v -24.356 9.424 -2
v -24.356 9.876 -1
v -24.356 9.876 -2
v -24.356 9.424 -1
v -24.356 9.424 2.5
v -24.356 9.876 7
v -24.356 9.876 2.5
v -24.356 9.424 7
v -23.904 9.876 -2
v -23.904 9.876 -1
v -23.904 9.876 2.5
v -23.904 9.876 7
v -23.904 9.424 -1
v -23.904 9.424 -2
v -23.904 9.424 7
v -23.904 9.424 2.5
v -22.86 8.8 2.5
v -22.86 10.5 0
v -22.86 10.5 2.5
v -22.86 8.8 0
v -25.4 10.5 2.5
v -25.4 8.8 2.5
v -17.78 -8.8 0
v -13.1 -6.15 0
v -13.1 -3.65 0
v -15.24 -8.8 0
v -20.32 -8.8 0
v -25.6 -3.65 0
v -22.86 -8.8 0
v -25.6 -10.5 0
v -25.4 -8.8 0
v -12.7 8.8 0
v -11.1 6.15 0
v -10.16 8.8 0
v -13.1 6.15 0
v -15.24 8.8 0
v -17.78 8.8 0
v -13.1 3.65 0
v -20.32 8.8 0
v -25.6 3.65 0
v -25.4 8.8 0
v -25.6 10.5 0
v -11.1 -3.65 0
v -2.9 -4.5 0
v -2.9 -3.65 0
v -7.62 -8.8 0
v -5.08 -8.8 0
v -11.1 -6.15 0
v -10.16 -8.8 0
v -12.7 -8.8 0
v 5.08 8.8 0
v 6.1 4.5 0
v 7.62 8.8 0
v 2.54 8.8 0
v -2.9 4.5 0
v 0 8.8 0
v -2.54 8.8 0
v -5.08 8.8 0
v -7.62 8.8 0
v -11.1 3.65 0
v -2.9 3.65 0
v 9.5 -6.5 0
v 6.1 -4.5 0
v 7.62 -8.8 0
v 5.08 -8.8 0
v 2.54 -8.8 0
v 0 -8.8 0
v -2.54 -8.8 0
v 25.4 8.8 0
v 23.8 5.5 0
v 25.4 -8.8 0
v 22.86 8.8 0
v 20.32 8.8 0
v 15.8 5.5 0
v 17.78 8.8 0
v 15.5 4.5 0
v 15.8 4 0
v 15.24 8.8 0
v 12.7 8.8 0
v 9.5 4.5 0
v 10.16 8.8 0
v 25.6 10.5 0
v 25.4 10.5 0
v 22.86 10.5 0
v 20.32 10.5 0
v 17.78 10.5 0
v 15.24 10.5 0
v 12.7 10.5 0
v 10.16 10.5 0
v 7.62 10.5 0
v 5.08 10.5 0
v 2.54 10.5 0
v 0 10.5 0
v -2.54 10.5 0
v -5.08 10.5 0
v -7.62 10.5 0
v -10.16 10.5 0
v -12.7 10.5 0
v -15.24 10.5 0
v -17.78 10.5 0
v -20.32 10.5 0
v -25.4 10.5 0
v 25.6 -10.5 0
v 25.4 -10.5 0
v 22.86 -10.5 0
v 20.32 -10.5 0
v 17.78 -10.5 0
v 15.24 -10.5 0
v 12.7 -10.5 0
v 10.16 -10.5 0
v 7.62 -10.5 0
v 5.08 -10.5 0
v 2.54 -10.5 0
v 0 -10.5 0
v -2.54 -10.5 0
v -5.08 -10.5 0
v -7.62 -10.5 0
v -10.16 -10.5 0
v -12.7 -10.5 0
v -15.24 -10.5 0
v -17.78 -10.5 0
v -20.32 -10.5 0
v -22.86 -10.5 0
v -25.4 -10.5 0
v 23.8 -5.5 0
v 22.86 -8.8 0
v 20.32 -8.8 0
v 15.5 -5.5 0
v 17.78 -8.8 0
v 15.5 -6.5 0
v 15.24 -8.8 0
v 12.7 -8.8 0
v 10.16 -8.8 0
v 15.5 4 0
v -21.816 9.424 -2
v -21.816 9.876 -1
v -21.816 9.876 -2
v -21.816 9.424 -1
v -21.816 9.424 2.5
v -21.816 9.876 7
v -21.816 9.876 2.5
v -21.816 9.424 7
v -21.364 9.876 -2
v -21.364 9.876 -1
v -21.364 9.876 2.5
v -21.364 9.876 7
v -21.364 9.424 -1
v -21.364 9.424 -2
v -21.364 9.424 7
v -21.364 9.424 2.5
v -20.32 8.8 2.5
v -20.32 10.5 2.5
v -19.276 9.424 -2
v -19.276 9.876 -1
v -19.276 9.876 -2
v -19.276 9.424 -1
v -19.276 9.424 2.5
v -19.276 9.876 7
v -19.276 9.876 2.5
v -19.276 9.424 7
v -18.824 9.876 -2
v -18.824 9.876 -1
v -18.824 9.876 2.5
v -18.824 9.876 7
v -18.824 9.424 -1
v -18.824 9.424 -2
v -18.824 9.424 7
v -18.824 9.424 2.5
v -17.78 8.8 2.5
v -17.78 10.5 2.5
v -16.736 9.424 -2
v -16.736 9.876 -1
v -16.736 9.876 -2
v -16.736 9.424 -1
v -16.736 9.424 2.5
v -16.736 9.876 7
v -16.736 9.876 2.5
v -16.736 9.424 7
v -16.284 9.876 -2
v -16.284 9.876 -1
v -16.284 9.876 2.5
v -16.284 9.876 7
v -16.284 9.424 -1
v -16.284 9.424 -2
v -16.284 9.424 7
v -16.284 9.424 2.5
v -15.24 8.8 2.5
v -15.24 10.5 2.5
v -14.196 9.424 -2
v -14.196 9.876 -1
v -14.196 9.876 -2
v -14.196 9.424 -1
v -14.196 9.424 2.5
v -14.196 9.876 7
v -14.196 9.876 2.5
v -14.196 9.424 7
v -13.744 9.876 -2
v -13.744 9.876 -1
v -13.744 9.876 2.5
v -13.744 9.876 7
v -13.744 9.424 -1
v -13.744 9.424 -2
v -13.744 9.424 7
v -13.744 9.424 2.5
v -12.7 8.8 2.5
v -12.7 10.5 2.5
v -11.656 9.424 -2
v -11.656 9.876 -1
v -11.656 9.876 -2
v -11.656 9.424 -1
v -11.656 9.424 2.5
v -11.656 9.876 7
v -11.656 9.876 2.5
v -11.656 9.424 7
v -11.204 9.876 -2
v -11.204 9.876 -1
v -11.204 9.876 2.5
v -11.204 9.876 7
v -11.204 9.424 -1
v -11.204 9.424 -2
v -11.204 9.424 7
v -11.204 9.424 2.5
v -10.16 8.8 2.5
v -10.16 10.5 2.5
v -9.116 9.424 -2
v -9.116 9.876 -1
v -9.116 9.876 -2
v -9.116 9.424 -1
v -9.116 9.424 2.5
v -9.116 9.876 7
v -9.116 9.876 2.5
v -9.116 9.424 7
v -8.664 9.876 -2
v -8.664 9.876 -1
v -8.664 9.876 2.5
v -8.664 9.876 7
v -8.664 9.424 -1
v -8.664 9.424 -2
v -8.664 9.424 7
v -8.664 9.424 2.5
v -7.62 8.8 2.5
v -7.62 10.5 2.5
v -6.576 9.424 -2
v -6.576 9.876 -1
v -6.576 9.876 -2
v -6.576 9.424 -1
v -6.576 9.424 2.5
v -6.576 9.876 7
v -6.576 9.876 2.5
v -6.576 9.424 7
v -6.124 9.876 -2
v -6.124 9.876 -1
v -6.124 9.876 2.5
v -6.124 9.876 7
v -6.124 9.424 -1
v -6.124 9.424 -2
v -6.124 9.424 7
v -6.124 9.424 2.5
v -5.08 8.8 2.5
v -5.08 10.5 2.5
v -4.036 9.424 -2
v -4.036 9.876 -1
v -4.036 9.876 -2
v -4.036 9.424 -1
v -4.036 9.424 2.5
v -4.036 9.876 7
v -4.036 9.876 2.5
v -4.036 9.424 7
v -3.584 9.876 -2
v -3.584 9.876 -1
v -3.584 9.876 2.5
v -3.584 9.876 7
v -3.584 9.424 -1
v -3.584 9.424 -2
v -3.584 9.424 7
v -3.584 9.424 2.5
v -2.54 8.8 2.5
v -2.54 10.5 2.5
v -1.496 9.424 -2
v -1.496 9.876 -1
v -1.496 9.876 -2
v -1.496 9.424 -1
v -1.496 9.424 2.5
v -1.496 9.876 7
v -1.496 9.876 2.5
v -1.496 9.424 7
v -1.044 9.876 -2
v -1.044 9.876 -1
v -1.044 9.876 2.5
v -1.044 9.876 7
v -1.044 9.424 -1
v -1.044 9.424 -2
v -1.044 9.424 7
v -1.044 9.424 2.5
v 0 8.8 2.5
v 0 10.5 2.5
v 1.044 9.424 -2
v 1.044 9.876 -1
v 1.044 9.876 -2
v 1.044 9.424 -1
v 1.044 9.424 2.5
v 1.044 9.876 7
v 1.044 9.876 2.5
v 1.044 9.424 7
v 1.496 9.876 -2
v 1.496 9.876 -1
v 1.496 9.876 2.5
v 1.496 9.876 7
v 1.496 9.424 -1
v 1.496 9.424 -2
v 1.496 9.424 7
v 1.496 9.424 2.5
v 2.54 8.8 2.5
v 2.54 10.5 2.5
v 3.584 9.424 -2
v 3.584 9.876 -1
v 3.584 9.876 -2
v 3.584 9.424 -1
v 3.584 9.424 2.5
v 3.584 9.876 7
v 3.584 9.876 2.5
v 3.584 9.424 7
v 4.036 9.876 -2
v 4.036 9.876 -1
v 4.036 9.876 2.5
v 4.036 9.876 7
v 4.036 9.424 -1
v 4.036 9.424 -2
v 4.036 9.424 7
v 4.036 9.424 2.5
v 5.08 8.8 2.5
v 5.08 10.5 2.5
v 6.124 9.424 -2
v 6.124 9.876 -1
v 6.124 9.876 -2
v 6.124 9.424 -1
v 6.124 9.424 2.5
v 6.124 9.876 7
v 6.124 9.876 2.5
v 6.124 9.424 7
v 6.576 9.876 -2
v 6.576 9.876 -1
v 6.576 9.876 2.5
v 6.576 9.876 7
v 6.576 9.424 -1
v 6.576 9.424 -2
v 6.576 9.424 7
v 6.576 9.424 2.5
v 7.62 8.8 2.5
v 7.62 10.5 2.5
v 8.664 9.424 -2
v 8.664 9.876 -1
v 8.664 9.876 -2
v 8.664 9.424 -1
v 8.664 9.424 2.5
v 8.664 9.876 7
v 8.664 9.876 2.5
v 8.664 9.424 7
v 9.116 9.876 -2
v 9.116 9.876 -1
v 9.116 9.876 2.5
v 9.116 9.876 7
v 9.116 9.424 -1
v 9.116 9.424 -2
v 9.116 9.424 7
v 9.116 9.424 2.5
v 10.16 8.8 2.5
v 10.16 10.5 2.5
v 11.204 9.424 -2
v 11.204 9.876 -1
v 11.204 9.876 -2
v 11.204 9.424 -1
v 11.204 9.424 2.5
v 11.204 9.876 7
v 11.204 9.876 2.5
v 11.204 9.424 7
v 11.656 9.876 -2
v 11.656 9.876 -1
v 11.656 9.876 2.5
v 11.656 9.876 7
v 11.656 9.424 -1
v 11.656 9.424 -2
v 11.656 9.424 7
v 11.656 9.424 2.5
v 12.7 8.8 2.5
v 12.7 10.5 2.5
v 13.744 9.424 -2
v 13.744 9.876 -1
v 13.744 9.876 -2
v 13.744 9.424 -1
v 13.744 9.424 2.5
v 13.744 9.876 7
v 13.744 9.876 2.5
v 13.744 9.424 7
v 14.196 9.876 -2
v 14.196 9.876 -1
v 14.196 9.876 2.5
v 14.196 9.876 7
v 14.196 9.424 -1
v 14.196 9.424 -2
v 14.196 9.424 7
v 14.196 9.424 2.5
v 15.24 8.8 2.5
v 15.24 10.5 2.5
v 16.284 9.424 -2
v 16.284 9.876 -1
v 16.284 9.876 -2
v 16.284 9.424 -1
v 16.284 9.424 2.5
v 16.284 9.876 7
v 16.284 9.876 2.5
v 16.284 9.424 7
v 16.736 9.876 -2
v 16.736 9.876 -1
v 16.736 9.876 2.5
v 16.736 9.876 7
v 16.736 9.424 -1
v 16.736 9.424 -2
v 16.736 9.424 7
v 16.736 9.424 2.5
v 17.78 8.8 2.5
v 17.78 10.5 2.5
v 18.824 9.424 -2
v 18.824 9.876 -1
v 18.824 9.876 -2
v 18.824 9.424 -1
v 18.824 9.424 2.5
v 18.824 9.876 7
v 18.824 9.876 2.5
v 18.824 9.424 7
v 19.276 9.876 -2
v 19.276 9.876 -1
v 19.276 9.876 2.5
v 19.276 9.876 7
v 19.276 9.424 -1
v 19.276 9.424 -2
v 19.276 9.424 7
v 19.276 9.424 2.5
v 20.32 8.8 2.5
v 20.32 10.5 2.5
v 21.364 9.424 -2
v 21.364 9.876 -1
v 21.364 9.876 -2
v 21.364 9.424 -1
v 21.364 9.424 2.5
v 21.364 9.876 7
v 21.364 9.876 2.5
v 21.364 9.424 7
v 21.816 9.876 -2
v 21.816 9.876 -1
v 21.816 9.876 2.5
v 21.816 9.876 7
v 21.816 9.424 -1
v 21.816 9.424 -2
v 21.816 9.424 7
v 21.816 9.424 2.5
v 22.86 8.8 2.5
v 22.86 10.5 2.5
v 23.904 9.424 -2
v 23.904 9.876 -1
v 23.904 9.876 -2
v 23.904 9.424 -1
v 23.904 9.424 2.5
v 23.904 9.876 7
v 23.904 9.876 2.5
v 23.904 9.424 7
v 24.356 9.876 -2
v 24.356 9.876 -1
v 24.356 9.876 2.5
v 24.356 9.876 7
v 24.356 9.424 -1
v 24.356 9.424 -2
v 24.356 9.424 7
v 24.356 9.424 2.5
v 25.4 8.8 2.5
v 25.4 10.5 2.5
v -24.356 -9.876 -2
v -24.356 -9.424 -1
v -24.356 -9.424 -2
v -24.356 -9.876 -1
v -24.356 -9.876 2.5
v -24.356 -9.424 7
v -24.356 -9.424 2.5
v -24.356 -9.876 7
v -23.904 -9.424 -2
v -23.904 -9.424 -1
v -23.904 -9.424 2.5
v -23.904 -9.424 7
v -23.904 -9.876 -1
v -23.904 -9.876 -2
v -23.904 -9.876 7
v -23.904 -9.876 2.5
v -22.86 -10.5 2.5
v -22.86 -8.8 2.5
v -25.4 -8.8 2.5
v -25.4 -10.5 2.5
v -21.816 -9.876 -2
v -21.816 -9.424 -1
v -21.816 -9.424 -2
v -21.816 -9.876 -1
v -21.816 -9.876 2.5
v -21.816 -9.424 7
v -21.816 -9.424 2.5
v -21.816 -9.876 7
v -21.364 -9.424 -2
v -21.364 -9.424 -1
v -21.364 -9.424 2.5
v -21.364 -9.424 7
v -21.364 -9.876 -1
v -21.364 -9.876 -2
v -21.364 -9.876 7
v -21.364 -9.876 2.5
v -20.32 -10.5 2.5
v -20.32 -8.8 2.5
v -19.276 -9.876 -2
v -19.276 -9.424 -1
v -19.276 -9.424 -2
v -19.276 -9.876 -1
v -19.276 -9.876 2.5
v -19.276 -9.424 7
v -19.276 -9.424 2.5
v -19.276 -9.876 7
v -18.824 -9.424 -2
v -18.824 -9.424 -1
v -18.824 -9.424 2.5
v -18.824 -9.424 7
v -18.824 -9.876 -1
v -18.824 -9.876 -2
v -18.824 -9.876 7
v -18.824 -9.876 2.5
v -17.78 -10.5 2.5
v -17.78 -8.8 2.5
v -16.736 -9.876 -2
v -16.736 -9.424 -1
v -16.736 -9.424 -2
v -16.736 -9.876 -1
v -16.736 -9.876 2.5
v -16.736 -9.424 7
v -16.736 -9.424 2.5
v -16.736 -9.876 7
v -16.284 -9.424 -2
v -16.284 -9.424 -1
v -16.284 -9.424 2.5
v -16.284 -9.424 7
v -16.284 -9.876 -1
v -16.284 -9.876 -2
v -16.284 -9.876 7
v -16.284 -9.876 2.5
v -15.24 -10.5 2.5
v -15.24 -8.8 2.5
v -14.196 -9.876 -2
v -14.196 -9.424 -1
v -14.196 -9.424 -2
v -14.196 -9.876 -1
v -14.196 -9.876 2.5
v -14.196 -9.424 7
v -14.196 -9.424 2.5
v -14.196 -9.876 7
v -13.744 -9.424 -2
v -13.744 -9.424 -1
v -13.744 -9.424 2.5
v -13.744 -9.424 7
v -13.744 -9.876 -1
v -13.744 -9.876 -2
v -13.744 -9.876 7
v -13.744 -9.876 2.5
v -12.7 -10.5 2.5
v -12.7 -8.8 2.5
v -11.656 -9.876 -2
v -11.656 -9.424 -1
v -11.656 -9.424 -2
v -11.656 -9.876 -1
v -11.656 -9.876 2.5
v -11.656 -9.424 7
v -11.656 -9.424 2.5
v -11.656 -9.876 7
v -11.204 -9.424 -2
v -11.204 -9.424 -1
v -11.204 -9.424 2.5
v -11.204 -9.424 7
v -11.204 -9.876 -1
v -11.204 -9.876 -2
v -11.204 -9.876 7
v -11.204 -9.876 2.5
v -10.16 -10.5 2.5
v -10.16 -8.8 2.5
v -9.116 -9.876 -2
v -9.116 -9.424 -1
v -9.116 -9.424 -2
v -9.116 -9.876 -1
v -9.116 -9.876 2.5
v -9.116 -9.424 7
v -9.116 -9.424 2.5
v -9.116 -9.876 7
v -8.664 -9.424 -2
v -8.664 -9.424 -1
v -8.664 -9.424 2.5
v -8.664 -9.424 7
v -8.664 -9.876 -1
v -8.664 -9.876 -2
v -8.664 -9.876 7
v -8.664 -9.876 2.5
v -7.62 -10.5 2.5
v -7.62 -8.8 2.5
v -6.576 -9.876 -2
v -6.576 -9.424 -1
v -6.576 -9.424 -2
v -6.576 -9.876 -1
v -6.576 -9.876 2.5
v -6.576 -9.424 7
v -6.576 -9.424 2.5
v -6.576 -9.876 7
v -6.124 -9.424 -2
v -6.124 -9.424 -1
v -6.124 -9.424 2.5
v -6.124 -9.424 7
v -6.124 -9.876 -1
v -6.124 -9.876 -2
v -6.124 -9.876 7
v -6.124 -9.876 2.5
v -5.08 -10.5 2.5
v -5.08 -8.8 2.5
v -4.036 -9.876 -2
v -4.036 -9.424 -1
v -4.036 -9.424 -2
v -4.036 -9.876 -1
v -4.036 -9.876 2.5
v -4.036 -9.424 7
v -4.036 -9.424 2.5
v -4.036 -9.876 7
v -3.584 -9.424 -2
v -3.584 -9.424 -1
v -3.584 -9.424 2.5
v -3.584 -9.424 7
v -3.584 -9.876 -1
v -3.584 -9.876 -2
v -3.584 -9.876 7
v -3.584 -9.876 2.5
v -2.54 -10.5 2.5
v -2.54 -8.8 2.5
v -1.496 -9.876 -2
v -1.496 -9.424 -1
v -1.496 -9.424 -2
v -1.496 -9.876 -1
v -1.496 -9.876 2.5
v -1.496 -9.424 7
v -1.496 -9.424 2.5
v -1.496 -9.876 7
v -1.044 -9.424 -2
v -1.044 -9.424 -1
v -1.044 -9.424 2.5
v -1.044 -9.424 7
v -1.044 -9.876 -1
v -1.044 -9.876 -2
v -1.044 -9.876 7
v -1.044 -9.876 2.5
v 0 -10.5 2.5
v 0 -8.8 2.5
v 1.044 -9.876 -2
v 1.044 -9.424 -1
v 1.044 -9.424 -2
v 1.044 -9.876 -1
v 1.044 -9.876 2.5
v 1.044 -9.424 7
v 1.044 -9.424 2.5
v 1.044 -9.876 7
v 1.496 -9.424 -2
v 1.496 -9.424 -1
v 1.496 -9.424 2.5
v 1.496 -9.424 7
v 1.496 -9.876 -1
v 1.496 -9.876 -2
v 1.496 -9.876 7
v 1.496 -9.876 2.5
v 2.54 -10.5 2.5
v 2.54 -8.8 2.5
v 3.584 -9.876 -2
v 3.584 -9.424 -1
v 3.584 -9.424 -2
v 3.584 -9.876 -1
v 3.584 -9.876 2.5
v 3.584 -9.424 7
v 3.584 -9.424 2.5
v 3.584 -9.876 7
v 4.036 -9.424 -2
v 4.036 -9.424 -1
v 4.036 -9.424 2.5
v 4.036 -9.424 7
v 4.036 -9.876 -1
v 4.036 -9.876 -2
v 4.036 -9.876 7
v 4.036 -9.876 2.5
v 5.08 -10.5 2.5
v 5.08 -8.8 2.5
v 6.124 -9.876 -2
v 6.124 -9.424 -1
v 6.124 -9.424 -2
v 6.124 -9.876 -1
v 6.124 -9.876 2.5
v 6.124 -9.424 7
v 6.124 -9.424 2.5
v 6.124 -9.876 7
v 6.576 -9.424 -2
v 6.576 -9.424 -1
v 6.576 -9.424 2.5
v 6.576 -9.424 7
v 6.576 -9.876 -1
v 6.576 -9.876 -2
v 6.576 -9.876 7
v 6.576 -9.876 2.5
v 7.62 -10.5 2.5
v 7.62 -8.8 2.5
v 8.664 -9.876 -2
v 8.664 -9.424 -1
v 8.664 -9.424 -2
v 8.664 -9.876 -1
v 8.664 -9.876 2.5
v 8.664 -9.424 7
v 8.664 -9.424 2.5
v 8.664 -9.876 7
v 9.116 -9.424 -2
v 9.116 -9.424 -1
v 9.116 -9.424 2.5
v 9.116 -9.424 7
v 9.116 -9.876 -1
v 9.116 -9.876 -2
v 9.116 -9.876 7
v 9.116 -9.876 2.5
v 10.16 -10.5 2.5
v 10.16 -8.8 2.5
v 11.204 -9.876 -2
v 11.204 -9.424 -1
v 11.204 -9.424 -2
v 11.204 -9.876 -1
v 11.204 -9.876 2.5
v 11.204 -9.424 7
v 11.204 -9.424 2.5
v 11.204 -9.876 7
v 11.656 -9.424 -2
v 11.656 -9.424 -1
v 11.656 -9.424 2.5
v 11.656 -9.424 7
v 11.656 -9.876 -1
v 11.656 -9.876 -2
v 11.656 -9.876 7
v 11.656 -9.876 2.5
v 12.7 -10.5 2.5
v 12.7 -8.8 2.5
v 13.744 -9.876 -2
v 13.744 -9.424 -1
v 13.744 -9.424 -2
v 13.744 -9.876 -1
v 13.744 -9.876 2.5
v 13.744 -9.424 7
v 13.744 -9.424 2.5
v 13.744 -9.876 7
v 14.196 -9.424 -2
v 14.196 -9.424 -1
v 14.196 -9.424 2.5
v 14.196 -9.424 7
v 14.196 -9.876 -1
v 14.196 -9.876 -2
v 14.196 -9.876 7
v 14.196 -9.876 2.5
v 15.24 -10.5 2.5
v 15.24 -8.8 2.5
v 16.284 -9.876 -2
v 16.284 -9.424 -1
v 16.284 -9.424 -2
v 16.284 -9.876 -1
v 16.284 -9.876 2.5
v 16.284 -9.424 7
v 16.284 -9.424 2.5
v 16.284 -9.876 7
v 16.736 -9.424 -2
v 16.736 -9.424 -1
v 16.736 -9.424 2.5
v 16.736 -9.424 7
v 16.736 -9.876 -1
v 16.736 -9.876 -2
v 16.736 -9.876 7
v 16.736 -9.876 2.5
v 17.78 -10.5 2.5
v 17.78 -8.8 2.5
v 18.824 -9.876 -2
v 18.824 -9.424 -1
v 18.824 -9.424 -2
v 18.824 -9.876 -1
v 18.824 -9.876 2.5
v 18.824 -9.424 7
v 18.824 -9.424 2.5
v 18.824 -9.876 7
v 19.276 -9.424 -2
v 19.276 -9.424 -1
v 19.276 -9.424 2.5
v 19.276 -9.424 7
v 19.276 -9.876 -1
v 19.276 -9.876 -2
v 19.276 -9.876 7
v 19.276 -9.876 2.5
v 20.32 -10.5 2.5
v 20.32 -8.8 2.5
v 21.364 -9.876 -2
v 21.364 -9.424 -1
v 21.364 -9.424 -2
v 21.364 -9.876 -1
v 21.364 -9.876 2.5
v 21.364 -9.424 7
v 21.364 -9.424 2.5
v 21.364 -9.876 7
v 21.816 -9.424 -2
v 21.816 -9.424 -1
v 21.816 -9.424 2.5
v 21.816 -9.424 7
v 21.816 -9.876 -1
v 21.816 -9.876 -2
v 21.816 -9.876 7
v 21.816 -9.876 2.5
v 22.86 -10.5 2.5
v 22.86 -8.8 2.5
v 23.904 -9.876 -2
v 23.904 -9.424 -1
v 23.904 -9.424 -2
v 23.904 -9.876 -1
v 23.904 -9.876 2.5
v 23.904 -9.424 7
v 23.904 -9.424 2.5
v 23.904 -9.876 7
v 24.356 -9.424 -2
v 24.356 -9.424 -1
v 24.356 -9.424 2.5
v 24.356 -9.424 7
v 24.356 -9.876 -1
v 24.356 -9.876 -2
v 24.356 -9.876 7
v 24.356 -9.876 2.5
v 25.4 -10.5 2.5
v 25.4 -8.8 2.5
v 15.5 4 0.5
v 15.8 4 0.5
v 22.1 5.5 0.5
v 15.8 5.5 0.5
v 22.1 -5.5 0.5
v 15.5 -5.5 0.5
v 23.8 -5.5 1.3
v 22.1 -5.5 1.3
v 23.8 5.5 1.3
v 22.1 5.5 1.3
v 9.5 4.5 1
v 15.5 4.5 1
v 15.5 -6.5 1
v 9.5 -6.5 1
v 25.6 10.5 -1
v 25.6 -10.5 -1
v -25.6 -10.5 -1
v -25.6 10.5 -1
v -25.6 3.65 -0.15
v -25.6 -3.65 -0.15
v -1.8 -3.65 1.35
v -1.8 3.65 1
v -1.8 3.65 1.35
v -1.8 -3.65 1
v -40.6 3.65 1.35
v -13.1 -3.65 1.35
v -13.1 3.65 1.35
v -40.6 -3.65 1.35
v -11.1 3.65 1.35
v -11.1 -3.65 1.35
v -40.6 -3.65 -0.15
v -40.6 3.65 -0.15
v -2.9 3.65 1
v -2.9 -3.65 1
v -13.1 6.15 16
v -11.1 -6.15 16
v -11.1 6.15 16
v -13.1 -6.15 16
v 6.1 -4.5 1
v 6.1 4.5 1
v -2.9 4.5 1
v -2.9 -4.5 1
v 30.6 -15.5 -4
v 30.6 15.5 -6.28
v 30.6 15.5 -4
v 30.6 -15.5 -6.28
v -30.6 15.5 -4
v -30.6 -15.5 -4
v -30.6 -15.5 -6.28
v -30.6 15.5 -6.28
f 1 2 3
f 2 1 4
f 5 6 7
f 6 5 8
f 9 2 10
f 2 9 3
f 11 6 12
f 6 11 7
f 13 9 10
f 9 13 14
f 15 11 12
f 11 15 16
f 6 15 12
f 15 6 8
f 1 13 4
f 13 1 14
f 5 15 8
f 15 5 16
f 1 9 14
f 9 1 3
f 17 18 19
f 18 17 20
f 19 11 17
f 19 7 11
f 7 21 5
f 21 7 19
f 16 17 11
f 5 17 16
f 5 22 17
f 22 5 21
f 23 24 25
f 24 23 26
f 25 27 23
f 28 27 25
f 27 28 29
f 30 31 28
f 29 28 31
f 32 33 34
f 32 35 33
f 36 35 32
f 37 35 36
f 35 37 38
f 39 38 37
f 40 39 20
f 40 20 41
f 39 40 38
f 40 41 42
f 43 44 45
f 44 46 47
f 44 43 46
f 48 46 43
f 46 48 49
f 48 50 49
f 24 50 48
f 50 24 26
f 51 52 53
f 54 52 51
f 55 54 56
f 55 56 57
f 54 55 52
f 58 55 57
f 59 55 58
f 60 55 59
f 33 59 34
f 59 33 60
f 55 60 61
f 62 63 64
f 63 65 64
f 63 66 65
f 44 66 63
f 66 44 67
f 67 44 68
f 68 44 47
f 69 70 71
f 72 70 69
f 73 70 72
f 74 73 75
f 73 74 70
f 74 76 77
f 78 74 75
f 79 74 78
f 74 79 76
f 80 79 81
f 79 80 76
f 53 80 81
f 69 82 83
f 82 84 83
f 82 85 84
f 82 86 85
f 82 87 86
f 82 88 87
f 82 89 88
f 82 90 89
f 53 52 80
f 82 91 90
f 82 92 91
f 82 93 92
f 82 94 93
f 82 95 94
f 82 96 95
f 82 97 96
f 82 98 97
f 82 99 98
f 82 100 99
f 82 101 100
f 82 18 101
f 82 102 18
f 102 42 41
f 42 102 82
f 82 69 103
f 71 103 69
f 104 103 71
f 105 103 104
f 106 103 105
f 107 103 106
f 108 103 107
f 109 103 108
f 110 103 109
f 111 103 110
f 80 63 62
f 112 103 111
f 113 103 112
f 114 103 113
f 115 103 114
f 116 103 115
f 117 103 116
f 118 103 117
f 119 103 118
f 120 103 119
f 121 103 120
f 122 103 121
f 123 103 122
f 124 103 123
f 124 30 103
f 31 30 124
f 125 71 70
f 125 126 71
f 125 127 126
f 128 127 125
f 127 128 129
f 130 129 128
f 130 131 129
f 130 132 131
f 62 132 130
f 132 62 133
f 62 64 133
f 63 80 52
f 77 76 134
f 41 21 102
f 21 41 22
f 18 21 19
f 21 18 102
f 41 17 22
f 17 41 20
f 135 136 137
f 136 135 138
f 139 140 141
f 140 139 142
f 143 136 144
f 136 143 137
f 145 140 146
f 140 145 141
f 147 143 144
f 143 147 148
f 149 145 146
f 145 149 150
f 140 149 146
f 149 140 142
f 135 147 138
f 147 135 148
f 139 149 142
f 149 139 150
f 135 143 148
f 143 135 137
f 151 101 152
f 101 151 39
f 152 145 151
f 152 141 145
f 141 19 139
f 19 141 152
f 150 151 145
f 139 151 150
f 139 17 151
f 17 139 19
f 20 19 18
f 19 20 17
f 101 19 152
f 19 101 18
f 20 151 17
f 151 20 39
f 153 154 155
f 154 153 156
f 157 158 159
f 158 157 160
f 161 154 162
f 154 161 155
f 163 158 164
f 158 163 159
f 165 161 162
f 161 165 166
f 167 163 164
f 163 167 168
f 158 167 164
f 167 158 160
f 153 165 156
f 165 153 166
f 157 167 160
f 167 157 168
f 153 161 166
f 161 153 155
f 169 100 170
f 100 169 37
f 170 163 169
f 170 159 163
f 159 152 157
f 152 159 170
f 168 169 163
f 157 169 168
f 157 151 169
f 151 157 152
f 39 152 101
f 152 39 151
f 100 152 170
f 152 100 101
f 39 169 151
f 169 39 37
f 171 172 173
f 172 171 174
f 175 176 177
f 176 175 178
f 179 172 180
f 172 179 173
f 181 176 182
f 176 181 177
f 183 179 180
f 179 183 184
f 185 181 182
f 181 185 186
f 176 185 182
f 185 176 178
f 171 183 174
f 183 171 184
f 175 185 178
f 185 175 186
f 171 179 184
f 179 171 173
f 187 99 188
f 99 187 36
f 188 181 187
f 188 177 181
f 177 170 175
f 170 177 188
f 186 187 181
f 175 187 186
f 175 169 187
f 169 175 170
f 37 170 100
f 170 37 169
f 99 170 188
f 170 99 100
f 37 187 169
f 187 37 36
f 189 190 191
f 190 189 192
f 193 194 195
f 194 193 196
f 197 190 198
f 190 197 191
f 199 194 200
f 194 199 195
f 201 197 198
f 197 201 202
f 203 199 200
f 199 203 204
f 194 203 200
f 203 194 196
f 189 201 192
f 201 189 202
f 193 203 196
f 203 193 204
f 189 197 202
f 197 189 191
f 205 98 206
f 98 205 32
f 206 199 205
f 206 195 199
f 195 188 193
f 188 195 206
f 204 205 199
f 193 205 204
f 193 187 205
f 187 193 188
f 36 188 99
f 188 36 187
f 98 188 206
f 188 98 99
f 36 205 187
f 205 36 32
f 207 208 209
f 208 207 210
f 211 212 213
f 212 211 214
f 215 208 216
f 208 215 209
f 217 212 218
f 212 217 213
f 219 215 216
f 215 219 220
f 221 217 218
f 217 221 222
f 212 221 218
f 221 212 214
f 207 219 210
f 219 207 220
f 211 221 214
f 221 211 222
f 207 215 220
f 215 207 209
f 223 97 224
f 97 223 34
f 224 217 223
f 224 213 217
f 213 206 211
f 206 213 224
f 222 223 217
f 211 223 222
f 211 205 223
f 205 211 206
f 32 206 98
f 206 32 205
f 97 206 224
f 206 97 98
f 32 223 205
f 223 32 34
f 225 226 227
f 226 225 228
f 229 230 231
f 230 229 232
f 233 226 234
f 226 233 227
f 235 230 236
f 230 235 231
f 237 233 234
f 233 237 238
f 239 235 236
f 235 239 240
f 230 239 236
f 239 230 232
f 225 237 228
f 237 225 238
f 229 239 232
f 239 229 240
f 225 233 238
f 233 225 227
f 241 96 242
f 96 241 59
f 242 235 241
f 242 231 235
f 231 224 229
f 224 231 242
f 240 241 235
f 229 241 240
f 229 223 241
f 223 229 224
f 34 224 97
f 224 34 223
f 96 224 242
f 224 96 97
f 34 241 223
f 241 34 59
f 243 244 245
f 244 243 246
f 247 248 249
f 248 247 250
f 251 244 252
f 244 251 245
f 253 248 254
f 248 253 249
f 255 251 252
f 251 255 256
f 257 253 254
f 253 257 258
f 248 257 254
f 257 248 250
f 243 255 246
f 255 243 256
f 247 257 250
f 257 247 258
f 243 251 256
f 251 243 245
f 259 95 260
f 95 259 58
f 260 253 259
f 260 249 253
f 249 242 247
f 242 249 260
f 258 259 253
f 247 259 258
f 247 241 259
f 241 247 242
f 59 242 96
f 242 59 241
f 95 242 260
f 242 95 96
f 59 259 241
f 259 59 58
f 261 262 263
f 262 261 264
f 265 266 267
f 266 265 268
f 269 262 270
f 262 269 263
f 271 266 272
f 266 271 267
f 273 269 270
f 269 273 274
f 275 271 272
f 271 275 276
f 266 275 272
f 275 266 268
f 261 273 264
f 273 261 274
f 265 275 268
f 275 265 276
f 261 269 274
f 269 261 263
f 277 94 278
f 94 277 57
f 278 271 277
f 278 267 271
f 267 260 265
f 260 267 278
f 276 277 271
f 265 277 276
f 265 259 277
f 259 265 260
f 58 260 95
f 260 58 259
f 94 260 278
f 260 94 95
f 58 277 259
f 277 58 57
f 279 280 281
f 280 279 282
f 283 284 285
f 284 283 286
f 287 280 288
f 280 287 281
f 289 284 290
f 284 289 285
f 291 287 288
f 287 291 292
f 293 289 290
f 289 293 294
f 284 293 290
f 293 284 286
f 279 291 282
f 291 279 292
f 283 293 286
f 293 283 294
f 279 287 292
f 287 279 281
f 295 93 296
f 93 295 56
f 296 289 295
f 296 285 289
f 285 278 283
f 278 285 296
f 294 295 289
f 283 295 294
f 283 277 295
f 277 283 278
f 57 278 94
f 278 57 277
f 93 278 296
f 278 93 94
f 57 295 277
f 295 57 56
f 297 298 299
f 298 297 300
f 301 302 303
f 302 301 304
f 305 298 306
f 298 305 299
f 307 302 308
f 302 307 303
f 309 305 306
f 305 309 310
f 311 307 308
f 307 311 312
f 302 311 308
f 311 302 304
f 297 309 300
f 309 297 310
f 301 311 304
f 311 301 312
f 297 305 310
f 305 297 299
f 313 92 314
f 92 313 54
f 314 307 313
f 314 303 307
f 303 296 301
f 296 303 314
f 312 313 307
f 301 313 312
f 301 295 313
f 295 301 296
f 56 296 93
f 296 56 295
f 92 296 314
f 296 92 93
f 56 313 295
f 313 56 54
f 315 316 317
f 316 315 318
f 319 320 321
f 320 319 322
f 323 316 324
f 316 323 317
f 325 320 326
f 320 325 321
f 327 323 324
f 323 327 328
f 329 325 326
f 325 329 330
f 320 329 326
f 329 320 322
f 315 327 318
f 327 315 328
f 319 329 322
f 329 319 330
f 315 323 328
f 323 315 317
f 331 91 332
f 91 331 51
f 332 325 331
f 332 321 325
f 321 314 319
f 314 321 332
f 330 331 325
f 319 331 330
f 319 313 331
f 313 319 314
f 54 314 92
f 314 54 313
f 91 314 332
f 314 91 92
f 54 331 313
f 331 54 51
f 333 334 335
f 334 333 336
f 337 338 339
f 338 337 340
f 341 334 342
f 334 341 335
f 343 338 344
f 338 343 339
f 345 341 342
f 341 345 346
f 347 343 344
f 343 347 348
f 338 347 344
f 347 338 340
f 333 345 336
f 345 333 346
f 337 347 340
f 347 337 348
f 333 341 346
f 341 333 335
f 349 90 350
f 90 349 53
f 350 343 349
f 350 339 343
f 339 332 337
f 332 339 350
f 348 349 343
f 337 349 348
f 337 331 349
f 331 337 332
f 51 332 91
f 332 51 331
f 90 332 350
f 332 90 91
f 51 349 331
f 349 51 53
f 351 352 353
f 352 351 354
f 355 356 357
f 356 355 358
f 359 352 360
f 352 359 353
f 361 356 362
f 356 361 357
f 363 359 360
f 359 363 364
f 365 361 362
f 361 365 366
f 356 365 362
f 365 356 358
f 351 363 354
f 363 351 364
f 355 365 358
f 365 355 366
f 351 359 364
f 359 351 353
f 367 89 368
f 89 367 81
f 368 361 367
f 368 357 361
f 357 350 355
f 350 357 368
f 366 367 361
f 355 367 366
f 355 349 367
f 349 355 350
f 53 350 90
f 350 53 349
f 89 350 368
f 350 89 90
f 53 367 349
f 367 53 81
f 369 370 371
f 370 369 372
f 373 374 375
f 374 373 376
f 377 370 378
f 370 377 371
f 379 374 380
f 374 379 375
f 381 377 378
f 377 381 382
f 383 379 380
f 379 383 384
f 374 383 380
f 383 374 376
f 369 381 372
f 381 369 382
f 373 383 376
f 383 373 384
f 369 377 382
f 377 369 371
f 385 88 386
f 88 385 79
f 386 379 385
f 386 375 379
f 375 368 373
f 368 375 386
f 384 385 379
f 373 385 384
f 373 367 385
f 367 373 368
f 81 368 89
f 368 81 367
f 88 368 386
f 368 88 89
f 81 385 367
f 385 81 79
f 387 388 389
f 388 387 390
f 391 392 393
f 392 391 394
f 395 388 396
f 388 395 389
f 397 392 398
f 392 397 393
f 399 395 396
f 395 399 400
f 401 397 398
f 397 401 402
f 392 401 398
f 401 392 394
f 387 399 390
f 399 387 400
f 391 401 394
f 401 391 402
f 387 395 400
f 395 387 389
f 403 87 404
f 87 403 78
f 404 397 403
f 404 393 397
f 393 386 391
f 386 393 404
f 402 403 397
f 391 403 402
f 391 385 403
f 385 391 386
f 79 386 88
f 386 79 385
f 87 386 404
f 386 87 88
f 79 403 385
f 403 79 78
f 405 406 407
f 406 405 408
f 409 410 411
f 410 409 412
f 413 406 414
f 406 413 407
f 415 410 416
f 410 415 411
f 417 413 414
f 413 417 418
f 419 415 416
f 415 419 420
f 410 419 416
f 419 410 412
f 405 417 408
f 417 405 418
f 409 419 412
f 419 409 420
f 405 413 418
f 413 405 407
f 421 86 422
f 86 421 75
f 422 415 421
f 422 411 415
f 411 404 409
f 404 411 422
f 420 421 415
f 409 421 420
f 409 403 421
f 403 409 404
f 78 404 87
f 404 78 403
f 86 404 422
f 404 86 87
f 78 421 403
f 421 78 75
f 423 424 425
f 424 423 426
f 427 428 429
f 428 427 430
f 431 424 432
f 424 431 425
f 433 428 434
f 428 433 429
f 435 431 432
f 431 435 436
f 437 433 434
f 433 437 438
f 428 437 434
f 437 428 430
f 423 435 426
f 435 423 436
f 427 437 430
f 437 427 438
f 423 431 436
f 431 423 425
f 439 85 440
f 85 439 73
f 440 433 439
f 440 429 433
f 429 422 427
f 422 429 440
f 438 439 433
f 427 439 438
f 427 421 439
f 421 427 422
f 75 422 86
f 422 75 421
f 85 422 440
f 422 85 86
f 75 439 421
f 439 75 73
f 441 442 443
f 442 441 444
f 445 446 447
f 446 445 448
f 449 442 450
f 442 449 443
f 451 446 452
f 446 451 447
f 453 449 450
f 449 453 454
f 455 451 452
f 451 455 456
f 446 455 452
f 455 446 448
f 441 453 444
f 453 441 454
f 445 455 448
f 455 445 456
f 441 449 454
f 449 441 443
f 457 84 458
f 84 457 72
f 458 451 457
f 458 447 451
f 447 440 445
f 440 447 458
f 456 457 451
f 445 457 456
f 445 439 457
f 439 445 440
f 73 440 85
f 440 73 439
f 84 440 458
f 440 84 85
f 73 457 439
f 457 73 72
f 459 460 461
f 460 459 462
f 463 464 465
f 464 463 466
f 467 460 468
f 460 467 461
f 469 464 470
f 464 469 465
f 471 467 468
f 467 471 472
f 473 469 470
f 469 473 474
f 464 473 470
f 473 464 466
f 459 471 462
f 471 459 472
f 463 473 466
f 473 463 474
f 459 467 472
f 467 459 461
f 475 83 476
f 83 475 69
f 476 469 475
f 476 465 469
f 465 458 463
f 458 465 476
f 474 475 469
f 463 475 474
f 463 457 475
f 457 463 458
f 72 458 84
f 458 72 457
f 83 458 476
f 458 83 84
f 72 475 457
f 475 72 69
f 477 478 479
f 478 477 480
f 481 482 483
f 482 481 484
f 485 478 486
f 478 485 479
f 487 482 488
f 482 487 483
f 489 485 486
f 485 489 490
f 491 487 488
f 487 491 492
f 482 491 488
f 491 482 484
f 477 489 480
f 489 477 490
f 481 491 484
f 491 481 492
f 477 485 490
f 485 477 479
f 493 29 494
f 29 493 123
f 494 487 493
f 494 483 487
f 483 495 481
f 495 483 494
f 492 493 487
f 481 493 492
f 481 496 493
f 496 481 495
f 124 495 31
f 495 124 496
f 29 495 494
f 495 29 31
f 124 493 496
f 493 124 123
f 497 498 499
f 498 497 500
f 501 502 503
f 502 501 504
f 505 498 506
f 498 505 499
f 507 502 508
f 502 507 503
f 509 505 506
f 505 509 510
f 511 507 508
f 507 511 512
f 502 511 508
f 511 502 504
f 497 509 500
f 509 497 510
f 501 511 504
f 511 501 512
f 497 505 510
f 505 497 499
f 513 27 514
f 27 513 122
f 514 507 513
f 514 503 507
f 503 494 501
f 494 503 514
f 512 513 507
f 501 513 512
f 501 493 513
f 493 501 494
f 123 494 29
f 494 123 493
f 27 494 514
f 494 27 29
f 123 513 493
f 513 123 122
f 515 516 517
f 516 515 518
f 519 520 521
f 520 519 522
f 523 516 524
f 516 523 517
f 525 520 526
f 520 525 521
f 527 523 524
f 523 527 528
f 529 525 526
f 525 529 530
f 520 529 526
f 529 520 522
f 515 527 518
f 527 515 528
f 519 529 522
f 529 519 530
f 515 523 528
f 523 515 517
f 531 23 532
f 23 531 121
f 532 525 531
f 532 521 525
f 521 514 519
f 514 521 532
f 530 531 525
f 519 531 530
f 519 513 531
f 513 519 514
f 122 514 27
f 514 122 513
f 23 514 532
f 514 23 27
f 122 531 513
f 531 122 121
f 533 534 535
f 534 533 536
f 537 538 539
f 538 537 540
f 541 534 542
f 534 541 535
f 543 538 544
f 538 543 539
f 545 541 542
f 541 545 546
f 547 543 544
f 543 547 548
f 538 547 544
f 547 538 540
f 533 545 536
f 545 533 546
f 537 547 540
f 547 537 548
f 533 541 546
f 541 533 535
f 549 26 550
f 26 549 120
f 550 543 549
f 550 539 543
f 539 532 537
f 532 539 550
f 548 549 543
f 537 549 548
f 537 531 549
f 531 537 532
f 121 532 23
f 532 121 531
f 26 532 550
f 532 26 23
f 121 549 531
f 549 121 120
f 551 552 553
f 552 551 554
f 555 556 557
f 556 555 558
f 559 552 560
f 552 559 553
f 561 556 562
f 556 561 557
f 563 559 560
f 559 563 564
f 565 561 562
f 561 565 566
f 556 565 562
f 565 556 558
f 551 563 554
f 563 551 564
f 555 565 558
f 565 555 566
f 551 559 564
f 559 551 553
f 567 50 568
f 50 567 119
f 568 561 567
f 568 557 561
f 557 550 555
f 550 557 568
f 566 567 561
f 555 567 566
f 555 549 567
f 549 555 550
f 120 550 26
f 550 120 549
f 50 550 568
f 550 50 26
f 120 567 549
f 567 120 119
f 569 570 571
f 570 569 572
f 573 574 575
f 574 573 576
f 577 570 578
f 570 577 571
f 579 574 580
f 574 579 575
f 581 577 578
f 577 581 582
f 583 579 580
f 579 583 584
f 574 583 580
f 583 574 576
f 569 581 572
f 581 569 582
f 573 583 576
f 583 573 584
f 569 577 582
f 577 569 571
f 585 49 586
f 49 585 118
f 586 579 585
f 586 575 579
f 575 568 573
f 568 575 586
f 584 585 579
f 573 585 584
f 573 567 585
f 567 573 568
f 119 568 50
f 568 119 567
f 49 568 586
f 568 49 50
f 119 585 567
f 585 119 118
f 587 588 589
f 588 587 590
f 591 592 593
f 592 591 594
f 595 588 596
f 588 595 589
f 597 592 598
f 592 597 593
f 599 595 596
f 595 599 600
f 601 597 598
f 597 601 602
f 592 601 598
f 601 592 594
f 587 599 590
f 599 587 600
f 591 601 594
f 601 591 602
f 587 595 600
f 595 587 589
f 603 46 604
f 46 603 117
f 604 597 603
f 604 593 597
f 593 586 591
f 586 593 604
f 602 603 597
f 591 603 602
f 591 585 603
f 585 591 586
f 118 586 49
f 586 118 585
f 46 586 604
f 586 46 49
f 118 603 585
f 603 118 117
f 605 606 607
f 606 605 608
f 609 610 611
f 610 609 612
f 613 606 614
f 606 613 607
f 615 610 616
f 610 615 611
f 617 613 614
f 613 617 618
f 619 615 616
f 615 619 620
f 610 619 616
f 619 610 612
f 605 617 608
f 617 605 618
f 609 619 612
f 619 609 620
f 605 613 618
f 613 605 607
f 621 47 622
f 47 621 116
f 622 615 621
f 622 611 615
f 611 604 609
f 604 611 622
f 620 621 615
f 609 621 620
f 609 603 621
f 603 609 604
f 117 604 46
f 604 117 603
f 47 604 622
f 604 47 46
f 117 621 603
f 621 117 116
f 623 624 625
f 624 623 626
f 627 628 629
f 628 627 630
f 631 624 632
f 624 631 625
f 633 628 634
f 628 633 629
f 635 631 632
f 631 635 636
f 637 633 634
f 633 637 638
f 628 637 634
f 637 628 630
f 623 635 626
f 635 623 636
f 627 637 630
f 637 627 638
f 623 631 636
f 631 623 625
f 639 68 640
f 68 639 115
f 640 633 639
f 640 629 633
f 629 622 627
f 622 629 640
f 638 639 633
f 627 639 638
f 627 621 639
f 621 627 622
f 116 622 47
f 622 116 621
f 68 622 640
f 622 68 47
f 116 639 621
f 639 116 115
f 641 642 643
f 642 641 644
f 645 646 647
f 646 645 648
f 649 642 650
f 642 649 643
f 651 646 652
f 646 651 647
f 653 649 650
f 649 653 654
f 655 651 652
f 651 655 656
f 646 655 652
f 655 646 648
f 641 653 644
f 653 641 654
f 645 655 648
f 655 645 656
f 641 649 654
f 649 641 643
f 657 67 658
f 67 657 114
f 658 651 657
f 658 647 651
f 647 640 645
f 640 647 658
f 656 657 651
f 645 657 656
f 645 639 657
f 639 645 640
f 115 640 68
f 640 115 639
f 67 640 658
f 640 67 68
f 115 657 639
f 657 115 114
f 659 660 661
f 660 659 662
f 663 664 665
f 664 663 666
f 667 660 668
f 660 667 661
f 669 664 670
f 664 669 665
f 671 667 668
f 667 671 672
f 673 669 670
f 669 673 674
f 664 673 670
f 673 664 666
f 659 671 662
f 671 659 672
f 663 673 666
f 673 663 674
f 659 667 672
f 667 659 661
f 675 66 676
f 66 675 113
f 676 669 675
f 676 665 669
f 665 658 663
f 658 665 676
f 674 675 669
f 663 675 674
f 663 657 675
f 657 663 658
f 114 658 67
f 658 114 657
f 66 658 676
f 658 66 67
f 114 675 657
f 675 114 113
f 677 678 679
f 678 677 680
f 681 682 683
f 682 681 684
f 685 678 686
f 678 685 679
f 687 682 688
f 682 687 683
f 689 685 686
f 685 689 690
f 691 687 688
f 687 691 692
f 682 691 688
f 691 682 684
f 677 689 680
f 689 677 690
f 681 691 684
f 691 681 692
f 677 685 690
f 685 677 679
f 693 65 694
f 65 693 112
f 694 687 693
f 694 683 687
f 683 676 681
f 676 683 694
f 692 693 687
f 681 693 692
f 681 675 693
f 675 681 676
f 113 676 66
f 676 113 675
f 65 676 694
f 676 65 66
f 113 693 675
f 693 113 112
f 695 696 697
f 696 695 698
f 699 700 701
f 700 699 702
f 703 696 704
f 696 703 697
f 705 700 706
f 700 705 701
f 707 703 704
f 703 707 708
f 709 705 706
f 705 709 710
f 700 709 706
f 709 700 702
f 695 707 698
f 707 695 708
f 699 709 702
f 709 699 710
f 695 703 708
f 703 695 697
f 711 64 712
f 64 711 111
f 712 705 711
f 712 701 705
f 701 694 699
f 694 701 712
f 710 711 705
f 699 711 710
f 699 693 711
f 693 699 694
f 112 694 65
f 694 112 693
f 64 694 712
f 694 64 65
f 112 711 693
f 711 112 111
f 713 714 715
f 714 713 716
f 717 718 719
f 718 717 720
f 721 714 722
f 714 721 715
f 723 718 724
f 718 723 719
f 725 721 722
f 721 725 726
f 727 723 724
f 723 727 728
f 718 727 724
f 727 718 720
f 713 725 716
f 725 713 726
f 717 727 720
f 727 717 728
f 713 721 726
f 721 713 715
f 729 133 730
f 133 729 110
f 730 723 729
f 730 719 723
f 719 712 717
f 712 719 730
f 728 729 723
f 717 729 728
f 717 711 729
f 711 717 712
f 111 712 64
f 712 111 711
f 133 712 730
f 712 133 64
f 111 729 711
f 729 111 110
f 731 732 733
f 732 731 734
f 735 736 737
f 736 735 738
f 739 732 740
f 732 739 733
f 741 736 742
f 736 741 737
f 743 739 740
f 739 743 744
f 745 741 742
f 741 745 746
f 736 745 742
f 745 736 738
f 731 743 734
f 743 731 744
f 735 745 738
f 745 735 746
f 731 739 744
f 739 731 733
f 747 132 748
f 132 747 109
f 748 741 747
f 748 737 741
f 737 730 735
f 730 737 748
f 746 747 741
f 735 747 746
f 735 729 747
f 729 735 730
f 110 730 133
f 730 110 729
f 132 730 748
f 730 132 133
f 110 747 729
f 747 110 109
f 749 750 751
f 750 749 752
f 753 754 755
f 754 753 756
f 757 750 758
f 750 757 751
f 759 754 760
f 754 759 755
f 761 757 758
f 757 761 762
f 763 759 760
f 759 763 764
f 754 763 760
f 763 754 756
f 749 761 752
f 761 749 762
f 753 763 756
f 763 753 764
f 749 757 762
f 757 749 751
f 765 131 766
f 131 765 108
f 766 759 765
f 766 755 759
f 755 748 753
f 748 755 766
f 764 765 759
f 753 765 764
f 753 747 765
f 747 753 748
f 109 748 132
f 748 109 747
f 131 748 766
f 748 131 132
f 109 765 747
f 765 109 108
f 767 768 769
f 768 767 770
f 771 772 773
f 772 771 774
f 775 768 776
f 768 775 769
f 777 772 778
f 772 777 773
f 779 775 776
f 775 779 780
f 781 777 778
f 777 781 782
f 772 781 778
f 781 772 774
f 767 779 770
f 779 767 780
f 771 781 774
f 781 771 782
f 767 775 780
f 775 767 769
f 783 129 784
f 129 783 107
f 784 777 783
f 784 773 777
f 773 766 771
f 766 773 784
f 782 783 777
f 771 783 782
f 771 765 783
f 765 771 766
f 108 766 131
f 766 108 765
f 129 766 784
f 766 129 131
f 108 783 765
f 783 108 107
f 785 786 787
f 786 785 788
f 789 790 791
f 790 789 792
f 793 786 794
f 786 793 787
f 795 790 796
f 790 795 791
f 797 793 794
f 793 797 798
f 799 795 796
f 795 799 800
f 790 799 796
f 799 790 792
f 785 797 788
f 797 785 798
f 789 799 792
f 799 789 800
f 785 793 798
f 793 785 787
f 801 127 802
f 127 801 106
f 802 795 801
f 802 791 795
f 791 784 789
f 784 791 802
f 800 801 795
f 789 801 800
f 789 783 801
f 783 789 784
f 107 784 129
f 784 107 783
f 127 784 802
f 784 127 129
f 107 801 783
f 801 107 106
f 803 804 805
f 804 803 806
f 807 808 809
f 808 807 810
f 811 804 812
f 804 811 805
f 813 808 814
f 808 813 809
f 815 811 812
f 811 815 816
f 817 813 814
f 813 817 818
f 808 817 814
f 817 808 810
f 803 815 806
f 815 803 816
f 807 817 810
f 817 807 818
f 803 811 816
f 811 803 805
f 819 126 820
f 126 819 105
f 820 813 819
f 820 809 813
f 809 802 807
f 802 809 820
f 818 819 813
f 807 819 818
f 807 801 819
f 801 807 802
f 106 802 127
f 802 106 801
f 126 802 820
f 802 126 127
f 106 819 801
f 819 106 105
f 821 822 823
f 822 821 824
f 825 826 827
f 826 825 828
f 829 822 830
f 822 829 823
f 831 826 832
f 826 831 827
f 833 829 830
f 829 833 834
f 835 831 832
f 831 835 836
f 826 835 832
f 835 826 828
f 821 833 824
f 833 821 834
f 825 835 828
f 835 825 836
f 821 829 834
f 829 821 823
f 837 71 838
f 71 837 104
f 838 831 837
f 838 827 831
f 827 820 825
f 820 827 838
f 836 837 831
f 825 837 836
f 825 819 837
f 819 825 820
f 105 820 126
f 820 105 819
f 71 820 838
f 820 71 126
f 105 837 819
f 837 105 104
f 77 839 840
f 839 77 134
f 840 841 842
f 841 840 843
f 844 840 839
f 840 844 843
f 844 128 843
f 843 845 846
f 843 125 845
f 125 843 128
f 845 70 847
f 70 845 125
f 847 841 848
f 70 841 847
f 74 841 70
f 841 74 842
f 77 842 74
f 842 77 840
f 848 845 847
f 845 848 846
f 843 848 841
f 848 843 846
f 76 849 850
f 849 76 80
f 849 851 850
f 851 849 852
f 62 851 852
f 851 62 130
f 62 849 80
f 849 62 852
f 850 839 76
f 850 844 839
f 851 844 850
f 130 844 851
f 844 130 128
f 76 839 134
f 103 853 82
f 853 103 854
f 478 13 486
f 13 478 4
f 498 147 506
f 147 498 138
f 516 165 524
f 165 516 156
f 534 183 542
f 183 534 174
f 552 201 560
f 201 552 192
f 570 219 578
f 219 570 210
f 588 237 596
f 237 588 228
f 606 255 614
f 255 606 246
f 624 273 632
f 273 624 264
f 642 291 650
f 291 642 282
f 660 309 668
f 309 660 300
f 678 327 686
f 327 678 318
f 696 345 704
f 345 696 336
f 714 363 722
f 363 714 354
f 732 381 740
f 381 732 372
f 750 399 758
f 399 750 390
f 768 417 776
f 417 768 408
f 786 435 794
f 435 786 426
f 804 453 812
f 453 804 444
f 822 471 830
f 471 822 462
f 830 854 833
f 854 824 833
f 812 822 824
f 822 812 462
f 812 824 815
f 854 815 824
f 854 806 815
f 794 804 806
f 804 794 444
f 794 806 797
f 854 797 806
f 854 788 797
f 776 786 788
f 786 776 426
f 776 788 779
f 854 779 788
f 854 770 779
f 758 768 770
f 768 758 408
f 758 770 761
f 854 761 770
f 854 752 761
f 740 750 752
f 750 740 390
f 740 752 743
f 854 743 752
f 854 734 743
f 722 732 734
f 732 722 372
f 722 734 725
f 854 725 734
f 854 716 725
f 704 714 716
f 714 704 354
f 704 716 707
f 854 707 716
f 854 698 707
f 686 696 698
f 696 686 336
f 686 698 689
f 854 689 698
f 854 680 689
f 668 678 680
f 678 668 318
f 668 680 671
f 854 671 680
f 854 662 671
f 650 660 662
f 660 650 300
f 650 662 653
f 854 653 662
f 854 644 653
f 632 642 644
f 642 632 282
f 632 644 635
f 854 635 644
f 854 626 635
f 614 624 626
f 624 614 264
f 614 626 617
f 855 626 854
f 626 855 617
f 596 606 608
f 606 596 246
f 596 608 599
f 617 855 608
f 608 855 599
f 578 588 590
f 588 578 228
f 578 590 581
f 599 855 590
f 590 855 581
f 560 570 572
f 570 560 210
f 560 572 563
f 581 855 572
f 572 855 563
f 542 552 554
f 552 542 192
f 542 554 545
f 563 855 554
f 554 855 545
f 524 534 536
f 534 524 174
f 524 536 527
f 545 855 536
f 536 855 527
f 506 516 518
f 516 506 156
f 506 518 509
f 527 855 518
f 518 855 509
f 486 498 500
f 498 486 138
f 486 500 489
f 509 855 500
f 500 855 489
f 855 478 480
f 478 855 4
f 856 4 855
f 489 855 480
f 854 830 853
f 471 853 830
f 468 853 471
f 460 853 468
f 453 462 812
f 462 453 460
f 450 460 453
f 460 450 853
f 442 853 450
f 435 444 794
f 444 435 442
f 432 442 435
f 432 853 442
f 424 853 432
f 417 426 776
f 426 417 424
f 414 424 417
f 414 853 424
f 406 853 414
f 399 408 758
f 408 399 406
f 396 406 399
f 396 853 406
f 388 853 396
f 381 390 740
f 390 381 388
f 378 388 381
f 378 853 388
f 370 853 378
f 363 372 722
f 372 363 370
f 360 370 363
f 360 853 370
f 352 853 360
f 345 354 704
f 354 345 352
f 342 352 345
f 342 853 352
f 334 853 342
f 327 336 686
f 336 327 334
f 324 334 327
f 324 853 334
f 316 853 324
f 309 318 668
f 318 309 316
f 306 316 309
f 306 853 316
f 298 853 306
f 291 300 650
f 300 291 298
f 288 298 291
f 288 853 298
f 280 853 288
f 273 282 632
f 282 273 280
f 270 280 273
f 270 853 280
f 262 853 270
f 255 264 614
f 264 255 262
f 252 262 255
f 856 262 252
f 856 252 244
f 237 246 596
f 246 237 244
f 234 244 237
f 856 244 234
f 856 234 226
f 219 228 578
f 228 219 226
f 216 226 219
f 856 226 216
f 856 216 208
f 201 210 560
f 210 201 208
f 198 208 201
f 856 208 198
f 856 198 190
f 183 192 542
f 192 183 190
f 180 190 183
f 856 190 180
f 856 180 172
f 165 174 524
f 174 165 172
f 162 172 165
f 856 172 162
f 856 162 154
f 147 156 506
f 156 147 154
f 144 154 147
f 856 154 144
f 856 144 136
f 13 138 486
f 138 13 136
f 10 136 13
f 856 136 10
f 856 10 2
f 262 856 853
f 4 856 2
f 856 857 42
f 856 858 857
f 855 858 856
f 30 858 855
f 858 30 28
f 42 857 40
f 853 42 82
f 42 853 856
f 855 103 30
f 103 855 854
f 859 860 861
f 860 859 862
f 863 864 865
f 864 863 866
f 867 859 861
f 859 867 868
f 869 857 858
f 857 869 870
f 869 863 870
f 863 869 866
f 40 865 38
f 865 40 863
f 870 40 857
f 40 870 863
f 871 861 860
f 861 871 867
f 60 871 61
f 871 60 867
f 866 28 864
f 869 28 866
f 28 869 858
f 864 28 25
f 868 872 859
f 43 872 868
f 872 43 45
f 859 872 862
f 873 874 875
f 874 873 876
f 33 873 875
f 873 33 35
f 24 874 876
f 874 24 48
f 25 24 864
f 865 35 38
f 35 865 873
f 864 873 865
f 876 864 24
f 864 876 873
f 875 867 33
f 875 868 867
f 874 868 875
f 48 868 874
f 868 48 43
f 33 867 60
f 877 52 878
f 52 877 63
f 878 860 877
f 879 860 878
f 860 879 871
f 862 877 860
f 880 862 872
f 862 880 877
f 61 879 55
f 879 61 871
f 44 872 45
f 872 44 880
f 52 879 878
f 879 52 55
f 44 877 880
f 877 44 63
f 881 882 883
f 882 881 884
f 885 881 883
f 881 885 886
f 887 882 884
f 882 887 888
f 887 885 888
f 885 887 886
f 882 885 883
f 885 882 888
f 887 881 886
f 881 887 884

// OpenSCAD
// file: GC2083.scad
include <common.scad>;

module top_screw(diameter, height, tolerance=0)
{
    rotate([-90,0,0])
        translate([0,0,height/2])
            difference()
            {
                cylinder(h=height, d=diameter+tolerance,center=true,$fn=100);
                translate([0,0,height/2])
                    cube([diameter/2,0.2,height/2],center=true);
                translate([0,0,height/2])
                    rotate([0,0,90])
                        cube([diameter/2,0.2,height/2],center=true);
            }
}

module pcb_holes(tolerance = 0)
{
    for ( pos =  [ [-pcb_holes_outside_distance[0]/2, pcb_holes_outside_distance[1]/2, -gc2083_pcb_size[2]/2], [ pcb_holes_outside_distance[0]/2, -pcb_holes_outside_distance[1]/2, -gc2083_pcb_size[2]/2 ] ] )
    {
        translate(pos)
        cylinder(h=holes_height, d=pcb_holes_outside_diameter+tolerance, center=true, $fn=50);  
    }
}

module pcb(size, tolerance=0)
{
    color("green")
    union()
    {
        difference()
        {
            // back plate
            translate([0, 0, -size[2]/2])
            {
                cube(gc2083_pcb_size, center=true);
            }
            pcb_holes(tolerance=tolerance);
        }
    }
}
module holes_inside(tolerance = 0)
{
    for ( pos =  [ [-holes_inside_distance[0]/2, holes_inside_distance[1]/2, -gc2083_pcb_size[2]/2], [ holes_inside_distance[0]/2, -holes_inside_distance[1]/2, -gc2083_pcb_size[2]/2 ] ] )
    {
        translate(pos)
        cylinder(h=holes_height, d=holes_inside_diameter+tolerance, center=true, $fn=50);  
    }
}


module semi_cylinder(center_plate_size, tolerance = 0)
{
    semi_cylinder_diameter = 4.5 + tolerance;
    semi_cylinder_height = center_plate_size[2];
    translate([0,0,semi_cylinder_height/2])
    difference()
    {
        translate([0,0,0])
        cylinder(h=semi_cylinder_height,d=semi_cylinder_diameter, center=true,  $fn=80);
        translate([-semi_cylinder_diameter/2,0,0])
        cube([semi_cylinder_diameter, semi_cylinder_diameter, semi_cylinder_height],center=true);
    }
}



module center_plate(center_plate_size, tolerance=0)
{
    color("black")
    difference()
    {
        union()
        {
            translate([0,0,center_plate_size[2]/2])
            cube(center_plate_size,center=true);

            center_plate_rect_size = [center_plate_size[0]+1.8*2,4.5+tolerance,center_plate_size[2]];
            translate([0,0,center_plate_rect_size[2]/2])
            cube(center_plate_rect_size,center=true);

            translate([center_plate_rect_size[0]/2,0,0])
            semi_cylinder(center_plate_size=center_plate_size,tolerance=tolerance);

            translate([-center_plate_rect_size[0]/2,0,0])
            rotate([0,0,180])
            semi_cylinder(center_plate_size=center_plate_size,tolerance=tolerance);
        }
        holes_inside();
    }
}
module lens(center_plate_size,
            lens_diameter,
            lens_height,
            tolerance=0)
{
    color("gray")
    translate([0,0,center_plate_size[2]+lens_height/2])
    cylinder(h=lens_height, d=lens_diameter+tolerance, center=true, $fn=100);
}

module top_box_and_screw(top_screw_height, top_screw_diameter, top_screw_box_size, top_screw_pos_z,lens_diameter, tolerance=0)
{
    color("gray")   
    {
        translate([0,
                   top_screw_box_size[0]/2+lens_diameter/2,
                   0.1+top_screw_pos_z-top_screw_box_size[1]/4])
            rotate([90,0,90])
                cube(top_screw_box_size,center=true);
    }
    color("black")
    {
        translate([0,lens_diameter/2,top_screw_pos_z])
            top_screw(diameter=top_screw_diameter,height=top_screw_height, tolerance=tolerance);
     }
}

module camera(extrude=false, tolerance=0)
{
    pcb(gc2083_pcb_size,
        tolerance=tolerance);

    center_plate(center_plate_size=center_plate_size,
                 tolerance=tolerance);

    lens(center_plate_size=center_plate_size,
                lens_diameter=lens_diameter,
                lens_height=lens_height,
                tolerance=tolerance);
  
    top_box_and_screw(top_screw_height=top_screw_height, top_screw_diameter=            top_screw_diameter, top_screw_box_size=top_screw_box_size, top_screw_pos_z=top_screw_pos_z, lens_diameter=lens_diameter, tolerance=tolerance);
    
    if (extrude)
    {   
        pcb_holes(tolerance=tolerance);
        holes_inside(tolerance=tolerance);
    }
    
    module back(gc2083_pcb_size, spi_connector_size, tolerance=0)
    {
        color("white")
            translate([0,
                       spi_connector_size[1]/2 - gc2083_pcb_size[1]/2-0.35,
                       -gc2083_pcb_size[2]-spi_connector_size[2]/2-tolerance/2])
                cube(spi_connector_size+[tolerance,tolerance,tolerance],center=true);
        
        for ( pos =  [ [holes_inside_distance[0]/2,0,-top_screw_height/2], [-holes_inside_distance[0]/2,0,-top_screw_height/2] ] )
            color("gray")
                translate(pos)
                    rotate([-90,0,0])
                        top_screw(diameter=top_screw_diameter, height=top_screw_height, tolerance=tolerance);
    }
    back(gc2083_pcb_size=gc2083_pcb_size, spi_connector_size=spi_connector_size, tolerance=tolerance);
}

camera(extrude=false, tolerance=tolerance);
// file: MilkV_Board.scad
include <common.scad>;


body_depth = 1.7; // Depth of the connector body
module header_male(pin_count, body_depth)
{
    // Parameters
    pin_height = 11.5; // Total height of the pin
    pin_width = 0.64; // Width of the pin
    pin_depth = 0.64; // Depth of the pin
    body_height = 2.5; // Height of the connector body
    pitch = 2.54; // Distance between pins center to center
    single_unit_width = pitch; // Width of a single unit, based on pitch
    //body_depth = 1.7; // Depth of the connector body

    // Single Unit Module (One Pin + Part of Body)
    module single_unit() {
        // Pin
        color("gray")
            translate([0, 0, body_height])
                rotate([0,0,45])      
                    cylinder(h = pin_height - body_height, r = pin_width / 2, $fn = 4, center = true);
        
        // Body Part
        color("black")
            translate([0, 0, body_height / 2])
                cube([single_unit_width, body_depth, body_height], center = true);
    }

    for (i = [0:pin_count-1]) {
        translate([pitch * i - ((pin_count-1) * pitch) / 2, 0, 0]) single_unit();
    }
}




module pcb(size, color, tolerance = 0)
{
    color(color)
    {
        translate([0,0,-size[2]/2])
        {
            cube(size,center=true);
        }
    }
}

module usb_connector(size, color, tolerance = 0, extrude=false)
{
    extrude_size = extrude ? 30 : 0;
    color(color)
    {
        translate([0,0,size[2]/2])
        {
            cube(size+[extrude_size,tolerance,tolerance],center=true);
        }
    }
}

module micro_sd_reader_with_sd()
{   
    rotate([0,0,90])   
    {
        translate([-5.5,-8.3,0])
        {
            union()
            {
                color("orange")
                    union()
                    {
                        cube([9.5,13,0.5]);
                        cube([11,8,0.5]);
                        cube([11,1.7,1.3]);
                    }
                    
                color("gray")
                {
                    translate([-1, 8.3, 0])
                    {
                        cube([11,6,1]);
                    }
                }
            }
        }
    }
}

module milkv_board(pcb_size, usb_connector_size, SPI_connector_size, tolerance=0, extrude=false)
{
    // pcb
    pcb(pcb_size, "pink", tolerance);

    // usb connector
    translate([usb_connector_size[0]/2-pcb_size[0]/2,0,0])
        usb_connector(usb_connector_size, "gray", tolerance, extrude);
    
    // spi connector
    
    extrusion_height=12;
    color("white")
        translate([12.5 + SPI_connector_size[1]/2-pcb_size[0]/2,
                   0,
                   2 + (extrude ? extrusion_height/2 : 0)])
            rotate([0,
                    0,
                    90])
                cube(SPI_connector_size + (extrude ? [0,0,extrusion_height] : [0,0,0]) ,center=true);
   
    // pins
    translate([0,pcb_size[1]/2 -body_depth/2 ,0])
        header_male(20, body_depth);
    translate([0,body_depth/2-pcb_size[1]/2,0])
        header_male(20, body_depth);

    // micro sd    
    translate([15.5, 0, 0])
        micro_sd_reader_with_sd();
        
        
     // SoC
     
     color("black")
        translate([1.6,0,0.5])
            cube(size=[9,9,1], center=true);
}

milkv_board(milkv_pcb_size, usb_connector_size, milkv_SPI_connector_size, tolerance=tolerance, extrude=false);
// file: common.scad
tolerance = 0.30;

// cam
gc2083_pcb_size = [27,17,1];

holes_height = 30;
pcb_holes_outside_distance = [20,13];
pcb_holes_outside_diameter = 2.4;

holes_inside_diameter = 1.7;
holes_inside_distance = [20,0];

center_plate_size = [16.25,16.25,3.5];
lens_diameter = 16;
lens_height = 23.5 - center_plate_size[2];

top_screw_diameter = 3;
top_screw_height = 1.5;

top_screw_box_size=[0.7,6.5,3.5];
top_screw_pos_z = 4.5-1+6.3-1.5;

spi_connector_size = [12.3, 5.2, 1.8];



// milkv

milkv_pcb_size=[51.2,
          21,
          1];

usb_connector_size=[8.8,
                    7,
                    1.2];

milkv_SPI_connector_size = [12.3,
                      2,
                      4];
// main file
include <common.scad>;
use <MilkV_Board.scad>;
use <GC2083.scad>;




case_width = 1.28;
case_bottom_plane_size = milkv_pcb_size + [10, 10, case_width];

translate([0,
           0,
           -case_bottom_plane_size[2]/2 - gc2083_pcb_size[2] - 3])
    cube(case_bottom_plane_size, center=true);

milkv_board(milkv_pcb_size, usb_connector_size, milkv_SPI_connector_size, tolerance=tolerance, extrude=true);
